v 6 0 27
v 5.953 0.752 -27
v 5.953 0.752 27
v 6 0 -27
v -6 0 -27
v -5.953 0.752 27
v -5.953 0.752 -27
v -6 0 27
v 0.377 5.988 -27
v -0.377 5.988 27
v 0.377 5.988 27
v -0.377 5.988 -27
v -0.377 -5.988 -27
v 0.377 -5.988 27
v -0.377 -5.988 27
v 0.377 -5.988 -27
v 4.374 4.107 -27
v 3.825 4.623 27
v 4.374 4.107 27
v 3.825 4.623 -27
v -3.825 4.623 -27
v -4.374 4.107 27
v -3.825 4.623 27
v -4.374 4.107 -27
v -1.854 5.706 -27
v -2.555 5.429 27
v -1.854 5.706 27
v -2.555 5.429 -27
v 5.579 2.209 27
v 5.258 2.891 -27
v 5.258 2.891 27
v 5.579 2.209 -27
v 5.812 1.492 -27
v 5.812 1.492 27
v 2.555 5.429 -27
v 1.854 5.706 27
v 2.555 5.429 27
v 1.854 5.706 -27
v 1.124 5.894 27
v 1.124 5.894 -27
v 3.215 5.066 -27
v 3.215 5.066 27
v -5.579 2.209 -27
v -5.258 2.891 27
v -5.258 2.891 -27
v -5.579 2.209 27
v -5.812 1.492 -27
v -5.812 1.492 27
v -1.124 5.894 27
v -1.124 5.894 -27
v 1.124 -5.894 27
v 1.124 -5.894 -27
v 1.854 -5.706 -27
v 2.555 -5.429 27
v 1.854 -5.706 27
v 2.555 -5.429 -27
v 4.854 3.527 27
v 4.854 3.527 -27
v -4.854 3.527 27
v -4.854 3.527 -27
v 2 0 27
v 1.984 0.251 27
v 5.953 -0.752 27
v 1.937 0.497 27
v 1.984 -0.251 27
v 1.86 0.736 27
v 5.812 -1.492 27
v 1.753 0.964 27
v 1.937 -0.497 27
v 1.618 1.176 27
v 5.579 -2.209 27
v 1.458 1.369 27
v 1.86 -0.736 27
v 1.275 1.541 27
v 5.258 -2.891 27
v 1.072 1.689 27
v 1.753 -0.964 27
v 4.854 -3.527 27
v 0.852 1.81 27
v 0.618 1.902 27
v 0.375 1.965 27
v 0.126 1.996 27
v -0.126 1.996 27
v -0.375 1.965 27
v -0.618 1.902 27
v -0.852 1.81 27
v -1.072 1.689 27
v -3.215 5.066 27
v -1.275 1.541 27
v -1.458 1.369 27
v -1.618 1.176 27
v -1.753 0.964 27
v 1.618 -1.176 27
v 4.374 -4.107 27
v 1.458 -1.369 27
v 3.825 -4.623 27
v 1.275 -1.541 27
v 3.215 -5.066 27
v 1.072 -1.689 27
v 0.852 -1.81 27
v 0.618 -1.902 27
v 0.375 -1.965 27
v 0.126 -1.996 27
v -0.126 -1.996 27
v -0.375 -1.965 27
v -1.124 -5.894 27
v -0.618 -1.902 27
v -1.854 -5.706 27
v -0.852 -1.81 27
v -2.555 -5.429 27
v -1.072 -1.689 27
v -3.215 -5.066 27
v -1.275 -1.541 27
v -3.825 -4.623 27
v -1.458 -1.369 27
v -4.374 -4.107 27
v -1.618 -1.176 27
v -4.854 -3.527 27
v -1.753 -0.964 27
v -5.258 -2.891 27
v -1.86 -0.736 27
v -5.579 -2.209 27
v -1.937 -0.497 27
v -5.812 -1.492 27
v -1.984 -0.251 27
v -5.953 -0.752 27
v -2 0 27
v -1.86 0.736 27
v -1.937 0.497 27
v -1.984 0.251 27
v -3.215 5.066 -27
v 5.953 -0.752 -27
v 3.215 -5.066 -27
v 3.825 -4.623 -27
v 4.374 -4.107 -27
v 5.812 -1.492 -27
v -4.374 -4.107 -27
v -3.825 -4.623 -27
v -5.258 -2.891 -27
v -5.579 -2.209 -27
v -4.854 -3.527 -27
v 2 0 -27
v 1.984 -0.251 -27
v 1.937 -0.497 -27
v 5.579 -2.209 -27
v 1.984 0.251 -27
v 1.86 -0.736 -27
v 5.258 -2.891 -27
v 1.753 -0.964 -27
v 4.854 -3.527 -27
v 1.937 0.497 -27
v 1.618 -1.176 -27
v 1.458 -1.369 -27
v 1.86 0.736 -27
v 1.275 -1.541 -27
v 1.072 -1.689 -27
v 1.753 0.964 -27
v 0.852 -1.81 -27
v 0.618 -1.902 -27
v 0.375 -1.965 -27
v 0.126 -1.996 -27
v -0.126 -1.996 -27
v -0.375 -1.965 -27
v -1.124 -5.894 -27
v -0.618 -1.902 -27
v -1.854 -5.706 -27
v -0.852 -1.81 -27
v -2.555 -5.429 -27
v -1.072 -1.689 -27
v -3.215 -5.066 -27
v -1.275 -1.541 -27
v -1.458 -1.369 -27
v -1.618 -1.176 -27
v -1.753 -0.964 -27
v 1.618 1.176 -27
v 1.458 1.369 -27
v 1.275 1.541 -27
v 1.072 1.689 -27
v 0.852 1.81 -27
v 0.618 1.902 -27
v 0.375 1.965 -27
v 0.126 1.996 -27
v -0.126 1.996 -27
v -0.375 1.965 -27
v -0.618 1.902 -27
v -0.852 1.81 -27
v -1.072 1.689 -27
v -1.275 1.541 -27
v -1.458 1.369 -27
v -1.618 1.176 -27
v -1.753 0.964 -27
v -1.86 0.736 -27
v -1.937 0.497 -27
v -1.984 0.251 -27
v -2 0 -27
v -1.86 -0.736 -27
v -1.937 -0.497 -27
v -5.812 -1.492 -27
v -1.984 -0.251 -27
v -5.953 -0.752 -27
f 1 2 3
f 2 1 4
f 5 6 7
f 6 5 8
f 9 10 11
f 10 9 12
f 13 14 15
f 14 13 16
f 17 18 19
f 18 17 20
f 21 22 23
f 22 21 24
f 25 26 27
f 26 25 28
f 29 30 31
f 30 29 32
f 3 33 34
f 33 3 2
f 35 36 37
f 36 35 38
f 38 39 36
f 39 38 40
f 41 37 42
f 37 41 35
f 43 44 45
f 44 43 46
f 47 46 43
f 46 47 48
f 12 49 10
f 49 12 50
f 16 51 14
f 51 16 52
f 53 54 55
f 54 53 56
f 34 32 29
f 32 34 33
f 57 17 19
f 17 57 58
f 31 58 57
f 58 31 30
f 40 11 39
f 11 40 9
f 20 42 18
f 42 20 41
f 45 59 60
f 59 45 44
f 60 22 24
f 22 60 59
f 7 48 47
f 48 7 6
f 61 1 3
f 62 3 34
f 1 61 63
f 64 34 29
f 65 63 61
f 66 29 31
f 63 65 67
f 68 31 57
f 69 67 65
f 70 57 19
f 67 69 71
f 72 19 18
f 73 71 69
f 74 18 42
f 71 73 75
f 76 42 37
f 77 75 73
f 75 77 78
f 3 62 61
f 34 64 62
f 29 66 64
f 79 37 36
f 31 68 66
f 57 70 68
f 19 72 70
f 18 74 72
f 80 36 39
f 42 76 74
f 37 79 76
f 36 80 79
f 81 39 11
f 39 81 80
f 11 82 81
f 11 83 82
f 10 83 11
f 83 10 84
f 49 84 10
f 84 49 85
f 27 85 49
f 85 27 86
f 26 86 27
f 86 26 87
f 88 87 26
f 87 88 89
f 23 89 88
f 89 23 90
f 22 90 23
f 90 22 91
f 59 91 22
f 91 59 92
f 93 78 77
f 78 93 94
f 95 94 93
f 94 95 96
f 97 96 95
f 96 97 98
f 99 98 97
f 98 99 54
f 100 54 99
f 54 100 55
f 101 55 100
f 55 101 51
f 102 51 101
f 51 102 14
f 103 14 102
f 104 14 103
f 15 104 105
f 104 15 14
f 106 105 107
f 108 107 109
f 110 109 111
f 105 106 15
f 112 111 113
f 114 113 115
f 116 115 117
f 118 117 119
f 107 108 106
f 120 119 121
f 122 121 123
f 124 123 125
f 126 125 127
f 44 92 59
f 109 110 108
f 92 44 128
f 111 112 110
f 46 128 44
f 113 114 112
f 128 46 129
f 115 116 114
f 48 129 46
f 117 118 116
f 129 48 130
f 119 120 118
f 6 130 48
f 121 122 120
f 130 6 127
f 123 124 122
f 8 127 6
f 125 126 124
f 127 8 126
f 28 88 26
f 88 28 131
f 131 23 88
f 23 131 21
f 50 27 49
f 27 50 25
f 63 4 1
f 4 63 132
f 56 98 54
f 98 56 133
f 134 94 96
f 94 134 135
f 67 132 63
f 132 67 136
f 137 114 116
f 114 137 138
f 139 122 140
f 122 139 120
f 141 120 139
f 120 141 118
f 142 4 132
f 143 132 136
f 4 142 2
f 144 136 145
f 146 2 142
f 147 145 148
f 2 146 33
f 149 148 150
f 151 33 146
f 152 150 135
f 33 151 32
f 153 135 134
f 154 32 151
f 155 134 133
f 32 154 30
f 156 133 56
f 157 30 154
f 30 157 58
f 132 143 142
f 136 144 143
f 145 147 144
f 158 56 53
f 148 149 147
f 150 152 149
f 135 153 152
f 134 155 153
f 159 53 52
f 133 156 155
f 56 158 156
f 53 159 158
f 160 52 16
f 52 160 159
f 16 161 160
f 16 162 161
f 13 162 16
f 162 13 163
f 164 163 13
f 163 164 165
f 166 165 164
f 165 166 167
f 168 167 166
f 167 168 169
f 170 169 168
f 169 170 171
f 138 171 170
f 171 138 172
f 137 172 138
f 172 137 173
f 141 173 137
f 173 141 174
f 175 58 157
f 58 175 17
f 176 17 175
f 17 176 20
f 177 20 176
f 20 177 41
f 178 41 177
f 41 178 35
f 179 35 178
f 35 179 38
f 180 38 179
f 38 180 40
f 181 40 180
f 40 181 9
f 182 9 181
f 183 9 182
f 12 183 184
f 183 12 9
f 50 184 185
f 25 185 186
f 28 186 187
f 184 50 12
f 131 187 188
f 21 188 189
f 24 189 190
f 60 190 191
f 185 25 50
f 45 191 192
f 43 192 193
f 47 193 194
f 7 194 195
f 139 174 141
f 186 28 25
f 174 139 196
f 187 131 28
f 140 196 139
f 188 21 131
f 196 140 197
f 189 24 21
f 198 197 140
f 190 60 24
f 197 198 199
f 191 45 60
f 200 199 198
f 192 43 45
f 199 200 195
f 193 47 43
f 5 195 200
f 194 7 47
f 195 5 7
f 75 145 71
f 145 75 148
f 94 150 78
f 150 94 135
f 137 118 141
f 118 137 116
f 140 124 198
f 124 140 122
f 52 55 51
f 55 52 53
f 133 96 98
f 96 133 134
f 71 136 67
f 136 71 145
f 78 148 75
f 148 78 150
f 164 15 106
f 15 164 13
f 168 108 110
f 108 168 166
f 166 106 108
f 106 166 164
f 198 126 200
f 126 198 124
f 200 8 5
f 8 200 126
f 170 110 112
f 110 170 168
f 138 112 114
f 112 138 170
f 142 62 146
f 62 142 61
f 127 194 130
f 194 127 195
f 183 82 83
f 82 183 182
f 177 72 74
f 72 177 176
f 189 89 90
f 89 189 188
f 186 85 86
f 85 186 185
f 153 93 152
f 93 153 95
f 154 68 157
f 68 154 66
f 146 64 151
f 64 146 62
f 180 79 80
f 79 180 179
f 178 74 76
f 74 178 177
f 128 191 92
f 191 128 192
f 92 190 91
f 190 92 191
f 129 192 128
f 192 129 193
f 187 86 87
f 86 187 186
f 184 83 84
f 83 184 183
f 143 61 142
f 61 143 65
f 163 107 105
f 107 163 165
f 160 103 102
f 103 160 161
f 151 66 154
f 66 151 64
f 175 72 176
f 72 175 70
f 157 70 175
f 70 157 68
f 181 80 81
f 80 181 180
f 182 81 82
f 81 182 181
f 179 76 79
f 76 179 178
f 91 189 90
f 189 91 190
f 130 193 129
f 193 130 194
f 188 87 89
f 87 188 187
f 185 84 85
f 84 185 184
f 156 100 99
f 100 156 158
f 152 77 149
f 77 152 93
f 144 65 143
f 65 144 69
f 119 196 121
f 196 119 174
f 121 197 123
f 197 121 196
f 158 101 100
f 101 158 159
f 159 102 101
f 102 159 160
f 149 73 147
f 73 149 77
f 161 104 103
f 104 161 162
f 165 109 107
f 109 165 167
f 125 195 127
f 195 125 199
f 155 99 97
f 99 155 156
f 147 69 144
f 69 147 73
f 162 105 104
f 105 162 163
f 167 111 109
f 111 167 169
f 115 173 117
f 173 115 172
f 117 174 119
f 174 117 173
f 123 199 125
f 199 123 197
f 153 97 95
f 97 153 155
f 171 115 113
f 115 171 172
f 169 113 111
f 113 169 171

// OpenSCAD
$fn = 50;


difference() {
	union() {
		translate(v = [0, 0, -27.0000000000]) {
			cylinder(h = 54, r = 6.0000000000);
		}
	}
	union() {
		translate(v = [0, 0, -100.0000000000]) {
			cylinder(h = 200, r = 2);
		}
	}
}
